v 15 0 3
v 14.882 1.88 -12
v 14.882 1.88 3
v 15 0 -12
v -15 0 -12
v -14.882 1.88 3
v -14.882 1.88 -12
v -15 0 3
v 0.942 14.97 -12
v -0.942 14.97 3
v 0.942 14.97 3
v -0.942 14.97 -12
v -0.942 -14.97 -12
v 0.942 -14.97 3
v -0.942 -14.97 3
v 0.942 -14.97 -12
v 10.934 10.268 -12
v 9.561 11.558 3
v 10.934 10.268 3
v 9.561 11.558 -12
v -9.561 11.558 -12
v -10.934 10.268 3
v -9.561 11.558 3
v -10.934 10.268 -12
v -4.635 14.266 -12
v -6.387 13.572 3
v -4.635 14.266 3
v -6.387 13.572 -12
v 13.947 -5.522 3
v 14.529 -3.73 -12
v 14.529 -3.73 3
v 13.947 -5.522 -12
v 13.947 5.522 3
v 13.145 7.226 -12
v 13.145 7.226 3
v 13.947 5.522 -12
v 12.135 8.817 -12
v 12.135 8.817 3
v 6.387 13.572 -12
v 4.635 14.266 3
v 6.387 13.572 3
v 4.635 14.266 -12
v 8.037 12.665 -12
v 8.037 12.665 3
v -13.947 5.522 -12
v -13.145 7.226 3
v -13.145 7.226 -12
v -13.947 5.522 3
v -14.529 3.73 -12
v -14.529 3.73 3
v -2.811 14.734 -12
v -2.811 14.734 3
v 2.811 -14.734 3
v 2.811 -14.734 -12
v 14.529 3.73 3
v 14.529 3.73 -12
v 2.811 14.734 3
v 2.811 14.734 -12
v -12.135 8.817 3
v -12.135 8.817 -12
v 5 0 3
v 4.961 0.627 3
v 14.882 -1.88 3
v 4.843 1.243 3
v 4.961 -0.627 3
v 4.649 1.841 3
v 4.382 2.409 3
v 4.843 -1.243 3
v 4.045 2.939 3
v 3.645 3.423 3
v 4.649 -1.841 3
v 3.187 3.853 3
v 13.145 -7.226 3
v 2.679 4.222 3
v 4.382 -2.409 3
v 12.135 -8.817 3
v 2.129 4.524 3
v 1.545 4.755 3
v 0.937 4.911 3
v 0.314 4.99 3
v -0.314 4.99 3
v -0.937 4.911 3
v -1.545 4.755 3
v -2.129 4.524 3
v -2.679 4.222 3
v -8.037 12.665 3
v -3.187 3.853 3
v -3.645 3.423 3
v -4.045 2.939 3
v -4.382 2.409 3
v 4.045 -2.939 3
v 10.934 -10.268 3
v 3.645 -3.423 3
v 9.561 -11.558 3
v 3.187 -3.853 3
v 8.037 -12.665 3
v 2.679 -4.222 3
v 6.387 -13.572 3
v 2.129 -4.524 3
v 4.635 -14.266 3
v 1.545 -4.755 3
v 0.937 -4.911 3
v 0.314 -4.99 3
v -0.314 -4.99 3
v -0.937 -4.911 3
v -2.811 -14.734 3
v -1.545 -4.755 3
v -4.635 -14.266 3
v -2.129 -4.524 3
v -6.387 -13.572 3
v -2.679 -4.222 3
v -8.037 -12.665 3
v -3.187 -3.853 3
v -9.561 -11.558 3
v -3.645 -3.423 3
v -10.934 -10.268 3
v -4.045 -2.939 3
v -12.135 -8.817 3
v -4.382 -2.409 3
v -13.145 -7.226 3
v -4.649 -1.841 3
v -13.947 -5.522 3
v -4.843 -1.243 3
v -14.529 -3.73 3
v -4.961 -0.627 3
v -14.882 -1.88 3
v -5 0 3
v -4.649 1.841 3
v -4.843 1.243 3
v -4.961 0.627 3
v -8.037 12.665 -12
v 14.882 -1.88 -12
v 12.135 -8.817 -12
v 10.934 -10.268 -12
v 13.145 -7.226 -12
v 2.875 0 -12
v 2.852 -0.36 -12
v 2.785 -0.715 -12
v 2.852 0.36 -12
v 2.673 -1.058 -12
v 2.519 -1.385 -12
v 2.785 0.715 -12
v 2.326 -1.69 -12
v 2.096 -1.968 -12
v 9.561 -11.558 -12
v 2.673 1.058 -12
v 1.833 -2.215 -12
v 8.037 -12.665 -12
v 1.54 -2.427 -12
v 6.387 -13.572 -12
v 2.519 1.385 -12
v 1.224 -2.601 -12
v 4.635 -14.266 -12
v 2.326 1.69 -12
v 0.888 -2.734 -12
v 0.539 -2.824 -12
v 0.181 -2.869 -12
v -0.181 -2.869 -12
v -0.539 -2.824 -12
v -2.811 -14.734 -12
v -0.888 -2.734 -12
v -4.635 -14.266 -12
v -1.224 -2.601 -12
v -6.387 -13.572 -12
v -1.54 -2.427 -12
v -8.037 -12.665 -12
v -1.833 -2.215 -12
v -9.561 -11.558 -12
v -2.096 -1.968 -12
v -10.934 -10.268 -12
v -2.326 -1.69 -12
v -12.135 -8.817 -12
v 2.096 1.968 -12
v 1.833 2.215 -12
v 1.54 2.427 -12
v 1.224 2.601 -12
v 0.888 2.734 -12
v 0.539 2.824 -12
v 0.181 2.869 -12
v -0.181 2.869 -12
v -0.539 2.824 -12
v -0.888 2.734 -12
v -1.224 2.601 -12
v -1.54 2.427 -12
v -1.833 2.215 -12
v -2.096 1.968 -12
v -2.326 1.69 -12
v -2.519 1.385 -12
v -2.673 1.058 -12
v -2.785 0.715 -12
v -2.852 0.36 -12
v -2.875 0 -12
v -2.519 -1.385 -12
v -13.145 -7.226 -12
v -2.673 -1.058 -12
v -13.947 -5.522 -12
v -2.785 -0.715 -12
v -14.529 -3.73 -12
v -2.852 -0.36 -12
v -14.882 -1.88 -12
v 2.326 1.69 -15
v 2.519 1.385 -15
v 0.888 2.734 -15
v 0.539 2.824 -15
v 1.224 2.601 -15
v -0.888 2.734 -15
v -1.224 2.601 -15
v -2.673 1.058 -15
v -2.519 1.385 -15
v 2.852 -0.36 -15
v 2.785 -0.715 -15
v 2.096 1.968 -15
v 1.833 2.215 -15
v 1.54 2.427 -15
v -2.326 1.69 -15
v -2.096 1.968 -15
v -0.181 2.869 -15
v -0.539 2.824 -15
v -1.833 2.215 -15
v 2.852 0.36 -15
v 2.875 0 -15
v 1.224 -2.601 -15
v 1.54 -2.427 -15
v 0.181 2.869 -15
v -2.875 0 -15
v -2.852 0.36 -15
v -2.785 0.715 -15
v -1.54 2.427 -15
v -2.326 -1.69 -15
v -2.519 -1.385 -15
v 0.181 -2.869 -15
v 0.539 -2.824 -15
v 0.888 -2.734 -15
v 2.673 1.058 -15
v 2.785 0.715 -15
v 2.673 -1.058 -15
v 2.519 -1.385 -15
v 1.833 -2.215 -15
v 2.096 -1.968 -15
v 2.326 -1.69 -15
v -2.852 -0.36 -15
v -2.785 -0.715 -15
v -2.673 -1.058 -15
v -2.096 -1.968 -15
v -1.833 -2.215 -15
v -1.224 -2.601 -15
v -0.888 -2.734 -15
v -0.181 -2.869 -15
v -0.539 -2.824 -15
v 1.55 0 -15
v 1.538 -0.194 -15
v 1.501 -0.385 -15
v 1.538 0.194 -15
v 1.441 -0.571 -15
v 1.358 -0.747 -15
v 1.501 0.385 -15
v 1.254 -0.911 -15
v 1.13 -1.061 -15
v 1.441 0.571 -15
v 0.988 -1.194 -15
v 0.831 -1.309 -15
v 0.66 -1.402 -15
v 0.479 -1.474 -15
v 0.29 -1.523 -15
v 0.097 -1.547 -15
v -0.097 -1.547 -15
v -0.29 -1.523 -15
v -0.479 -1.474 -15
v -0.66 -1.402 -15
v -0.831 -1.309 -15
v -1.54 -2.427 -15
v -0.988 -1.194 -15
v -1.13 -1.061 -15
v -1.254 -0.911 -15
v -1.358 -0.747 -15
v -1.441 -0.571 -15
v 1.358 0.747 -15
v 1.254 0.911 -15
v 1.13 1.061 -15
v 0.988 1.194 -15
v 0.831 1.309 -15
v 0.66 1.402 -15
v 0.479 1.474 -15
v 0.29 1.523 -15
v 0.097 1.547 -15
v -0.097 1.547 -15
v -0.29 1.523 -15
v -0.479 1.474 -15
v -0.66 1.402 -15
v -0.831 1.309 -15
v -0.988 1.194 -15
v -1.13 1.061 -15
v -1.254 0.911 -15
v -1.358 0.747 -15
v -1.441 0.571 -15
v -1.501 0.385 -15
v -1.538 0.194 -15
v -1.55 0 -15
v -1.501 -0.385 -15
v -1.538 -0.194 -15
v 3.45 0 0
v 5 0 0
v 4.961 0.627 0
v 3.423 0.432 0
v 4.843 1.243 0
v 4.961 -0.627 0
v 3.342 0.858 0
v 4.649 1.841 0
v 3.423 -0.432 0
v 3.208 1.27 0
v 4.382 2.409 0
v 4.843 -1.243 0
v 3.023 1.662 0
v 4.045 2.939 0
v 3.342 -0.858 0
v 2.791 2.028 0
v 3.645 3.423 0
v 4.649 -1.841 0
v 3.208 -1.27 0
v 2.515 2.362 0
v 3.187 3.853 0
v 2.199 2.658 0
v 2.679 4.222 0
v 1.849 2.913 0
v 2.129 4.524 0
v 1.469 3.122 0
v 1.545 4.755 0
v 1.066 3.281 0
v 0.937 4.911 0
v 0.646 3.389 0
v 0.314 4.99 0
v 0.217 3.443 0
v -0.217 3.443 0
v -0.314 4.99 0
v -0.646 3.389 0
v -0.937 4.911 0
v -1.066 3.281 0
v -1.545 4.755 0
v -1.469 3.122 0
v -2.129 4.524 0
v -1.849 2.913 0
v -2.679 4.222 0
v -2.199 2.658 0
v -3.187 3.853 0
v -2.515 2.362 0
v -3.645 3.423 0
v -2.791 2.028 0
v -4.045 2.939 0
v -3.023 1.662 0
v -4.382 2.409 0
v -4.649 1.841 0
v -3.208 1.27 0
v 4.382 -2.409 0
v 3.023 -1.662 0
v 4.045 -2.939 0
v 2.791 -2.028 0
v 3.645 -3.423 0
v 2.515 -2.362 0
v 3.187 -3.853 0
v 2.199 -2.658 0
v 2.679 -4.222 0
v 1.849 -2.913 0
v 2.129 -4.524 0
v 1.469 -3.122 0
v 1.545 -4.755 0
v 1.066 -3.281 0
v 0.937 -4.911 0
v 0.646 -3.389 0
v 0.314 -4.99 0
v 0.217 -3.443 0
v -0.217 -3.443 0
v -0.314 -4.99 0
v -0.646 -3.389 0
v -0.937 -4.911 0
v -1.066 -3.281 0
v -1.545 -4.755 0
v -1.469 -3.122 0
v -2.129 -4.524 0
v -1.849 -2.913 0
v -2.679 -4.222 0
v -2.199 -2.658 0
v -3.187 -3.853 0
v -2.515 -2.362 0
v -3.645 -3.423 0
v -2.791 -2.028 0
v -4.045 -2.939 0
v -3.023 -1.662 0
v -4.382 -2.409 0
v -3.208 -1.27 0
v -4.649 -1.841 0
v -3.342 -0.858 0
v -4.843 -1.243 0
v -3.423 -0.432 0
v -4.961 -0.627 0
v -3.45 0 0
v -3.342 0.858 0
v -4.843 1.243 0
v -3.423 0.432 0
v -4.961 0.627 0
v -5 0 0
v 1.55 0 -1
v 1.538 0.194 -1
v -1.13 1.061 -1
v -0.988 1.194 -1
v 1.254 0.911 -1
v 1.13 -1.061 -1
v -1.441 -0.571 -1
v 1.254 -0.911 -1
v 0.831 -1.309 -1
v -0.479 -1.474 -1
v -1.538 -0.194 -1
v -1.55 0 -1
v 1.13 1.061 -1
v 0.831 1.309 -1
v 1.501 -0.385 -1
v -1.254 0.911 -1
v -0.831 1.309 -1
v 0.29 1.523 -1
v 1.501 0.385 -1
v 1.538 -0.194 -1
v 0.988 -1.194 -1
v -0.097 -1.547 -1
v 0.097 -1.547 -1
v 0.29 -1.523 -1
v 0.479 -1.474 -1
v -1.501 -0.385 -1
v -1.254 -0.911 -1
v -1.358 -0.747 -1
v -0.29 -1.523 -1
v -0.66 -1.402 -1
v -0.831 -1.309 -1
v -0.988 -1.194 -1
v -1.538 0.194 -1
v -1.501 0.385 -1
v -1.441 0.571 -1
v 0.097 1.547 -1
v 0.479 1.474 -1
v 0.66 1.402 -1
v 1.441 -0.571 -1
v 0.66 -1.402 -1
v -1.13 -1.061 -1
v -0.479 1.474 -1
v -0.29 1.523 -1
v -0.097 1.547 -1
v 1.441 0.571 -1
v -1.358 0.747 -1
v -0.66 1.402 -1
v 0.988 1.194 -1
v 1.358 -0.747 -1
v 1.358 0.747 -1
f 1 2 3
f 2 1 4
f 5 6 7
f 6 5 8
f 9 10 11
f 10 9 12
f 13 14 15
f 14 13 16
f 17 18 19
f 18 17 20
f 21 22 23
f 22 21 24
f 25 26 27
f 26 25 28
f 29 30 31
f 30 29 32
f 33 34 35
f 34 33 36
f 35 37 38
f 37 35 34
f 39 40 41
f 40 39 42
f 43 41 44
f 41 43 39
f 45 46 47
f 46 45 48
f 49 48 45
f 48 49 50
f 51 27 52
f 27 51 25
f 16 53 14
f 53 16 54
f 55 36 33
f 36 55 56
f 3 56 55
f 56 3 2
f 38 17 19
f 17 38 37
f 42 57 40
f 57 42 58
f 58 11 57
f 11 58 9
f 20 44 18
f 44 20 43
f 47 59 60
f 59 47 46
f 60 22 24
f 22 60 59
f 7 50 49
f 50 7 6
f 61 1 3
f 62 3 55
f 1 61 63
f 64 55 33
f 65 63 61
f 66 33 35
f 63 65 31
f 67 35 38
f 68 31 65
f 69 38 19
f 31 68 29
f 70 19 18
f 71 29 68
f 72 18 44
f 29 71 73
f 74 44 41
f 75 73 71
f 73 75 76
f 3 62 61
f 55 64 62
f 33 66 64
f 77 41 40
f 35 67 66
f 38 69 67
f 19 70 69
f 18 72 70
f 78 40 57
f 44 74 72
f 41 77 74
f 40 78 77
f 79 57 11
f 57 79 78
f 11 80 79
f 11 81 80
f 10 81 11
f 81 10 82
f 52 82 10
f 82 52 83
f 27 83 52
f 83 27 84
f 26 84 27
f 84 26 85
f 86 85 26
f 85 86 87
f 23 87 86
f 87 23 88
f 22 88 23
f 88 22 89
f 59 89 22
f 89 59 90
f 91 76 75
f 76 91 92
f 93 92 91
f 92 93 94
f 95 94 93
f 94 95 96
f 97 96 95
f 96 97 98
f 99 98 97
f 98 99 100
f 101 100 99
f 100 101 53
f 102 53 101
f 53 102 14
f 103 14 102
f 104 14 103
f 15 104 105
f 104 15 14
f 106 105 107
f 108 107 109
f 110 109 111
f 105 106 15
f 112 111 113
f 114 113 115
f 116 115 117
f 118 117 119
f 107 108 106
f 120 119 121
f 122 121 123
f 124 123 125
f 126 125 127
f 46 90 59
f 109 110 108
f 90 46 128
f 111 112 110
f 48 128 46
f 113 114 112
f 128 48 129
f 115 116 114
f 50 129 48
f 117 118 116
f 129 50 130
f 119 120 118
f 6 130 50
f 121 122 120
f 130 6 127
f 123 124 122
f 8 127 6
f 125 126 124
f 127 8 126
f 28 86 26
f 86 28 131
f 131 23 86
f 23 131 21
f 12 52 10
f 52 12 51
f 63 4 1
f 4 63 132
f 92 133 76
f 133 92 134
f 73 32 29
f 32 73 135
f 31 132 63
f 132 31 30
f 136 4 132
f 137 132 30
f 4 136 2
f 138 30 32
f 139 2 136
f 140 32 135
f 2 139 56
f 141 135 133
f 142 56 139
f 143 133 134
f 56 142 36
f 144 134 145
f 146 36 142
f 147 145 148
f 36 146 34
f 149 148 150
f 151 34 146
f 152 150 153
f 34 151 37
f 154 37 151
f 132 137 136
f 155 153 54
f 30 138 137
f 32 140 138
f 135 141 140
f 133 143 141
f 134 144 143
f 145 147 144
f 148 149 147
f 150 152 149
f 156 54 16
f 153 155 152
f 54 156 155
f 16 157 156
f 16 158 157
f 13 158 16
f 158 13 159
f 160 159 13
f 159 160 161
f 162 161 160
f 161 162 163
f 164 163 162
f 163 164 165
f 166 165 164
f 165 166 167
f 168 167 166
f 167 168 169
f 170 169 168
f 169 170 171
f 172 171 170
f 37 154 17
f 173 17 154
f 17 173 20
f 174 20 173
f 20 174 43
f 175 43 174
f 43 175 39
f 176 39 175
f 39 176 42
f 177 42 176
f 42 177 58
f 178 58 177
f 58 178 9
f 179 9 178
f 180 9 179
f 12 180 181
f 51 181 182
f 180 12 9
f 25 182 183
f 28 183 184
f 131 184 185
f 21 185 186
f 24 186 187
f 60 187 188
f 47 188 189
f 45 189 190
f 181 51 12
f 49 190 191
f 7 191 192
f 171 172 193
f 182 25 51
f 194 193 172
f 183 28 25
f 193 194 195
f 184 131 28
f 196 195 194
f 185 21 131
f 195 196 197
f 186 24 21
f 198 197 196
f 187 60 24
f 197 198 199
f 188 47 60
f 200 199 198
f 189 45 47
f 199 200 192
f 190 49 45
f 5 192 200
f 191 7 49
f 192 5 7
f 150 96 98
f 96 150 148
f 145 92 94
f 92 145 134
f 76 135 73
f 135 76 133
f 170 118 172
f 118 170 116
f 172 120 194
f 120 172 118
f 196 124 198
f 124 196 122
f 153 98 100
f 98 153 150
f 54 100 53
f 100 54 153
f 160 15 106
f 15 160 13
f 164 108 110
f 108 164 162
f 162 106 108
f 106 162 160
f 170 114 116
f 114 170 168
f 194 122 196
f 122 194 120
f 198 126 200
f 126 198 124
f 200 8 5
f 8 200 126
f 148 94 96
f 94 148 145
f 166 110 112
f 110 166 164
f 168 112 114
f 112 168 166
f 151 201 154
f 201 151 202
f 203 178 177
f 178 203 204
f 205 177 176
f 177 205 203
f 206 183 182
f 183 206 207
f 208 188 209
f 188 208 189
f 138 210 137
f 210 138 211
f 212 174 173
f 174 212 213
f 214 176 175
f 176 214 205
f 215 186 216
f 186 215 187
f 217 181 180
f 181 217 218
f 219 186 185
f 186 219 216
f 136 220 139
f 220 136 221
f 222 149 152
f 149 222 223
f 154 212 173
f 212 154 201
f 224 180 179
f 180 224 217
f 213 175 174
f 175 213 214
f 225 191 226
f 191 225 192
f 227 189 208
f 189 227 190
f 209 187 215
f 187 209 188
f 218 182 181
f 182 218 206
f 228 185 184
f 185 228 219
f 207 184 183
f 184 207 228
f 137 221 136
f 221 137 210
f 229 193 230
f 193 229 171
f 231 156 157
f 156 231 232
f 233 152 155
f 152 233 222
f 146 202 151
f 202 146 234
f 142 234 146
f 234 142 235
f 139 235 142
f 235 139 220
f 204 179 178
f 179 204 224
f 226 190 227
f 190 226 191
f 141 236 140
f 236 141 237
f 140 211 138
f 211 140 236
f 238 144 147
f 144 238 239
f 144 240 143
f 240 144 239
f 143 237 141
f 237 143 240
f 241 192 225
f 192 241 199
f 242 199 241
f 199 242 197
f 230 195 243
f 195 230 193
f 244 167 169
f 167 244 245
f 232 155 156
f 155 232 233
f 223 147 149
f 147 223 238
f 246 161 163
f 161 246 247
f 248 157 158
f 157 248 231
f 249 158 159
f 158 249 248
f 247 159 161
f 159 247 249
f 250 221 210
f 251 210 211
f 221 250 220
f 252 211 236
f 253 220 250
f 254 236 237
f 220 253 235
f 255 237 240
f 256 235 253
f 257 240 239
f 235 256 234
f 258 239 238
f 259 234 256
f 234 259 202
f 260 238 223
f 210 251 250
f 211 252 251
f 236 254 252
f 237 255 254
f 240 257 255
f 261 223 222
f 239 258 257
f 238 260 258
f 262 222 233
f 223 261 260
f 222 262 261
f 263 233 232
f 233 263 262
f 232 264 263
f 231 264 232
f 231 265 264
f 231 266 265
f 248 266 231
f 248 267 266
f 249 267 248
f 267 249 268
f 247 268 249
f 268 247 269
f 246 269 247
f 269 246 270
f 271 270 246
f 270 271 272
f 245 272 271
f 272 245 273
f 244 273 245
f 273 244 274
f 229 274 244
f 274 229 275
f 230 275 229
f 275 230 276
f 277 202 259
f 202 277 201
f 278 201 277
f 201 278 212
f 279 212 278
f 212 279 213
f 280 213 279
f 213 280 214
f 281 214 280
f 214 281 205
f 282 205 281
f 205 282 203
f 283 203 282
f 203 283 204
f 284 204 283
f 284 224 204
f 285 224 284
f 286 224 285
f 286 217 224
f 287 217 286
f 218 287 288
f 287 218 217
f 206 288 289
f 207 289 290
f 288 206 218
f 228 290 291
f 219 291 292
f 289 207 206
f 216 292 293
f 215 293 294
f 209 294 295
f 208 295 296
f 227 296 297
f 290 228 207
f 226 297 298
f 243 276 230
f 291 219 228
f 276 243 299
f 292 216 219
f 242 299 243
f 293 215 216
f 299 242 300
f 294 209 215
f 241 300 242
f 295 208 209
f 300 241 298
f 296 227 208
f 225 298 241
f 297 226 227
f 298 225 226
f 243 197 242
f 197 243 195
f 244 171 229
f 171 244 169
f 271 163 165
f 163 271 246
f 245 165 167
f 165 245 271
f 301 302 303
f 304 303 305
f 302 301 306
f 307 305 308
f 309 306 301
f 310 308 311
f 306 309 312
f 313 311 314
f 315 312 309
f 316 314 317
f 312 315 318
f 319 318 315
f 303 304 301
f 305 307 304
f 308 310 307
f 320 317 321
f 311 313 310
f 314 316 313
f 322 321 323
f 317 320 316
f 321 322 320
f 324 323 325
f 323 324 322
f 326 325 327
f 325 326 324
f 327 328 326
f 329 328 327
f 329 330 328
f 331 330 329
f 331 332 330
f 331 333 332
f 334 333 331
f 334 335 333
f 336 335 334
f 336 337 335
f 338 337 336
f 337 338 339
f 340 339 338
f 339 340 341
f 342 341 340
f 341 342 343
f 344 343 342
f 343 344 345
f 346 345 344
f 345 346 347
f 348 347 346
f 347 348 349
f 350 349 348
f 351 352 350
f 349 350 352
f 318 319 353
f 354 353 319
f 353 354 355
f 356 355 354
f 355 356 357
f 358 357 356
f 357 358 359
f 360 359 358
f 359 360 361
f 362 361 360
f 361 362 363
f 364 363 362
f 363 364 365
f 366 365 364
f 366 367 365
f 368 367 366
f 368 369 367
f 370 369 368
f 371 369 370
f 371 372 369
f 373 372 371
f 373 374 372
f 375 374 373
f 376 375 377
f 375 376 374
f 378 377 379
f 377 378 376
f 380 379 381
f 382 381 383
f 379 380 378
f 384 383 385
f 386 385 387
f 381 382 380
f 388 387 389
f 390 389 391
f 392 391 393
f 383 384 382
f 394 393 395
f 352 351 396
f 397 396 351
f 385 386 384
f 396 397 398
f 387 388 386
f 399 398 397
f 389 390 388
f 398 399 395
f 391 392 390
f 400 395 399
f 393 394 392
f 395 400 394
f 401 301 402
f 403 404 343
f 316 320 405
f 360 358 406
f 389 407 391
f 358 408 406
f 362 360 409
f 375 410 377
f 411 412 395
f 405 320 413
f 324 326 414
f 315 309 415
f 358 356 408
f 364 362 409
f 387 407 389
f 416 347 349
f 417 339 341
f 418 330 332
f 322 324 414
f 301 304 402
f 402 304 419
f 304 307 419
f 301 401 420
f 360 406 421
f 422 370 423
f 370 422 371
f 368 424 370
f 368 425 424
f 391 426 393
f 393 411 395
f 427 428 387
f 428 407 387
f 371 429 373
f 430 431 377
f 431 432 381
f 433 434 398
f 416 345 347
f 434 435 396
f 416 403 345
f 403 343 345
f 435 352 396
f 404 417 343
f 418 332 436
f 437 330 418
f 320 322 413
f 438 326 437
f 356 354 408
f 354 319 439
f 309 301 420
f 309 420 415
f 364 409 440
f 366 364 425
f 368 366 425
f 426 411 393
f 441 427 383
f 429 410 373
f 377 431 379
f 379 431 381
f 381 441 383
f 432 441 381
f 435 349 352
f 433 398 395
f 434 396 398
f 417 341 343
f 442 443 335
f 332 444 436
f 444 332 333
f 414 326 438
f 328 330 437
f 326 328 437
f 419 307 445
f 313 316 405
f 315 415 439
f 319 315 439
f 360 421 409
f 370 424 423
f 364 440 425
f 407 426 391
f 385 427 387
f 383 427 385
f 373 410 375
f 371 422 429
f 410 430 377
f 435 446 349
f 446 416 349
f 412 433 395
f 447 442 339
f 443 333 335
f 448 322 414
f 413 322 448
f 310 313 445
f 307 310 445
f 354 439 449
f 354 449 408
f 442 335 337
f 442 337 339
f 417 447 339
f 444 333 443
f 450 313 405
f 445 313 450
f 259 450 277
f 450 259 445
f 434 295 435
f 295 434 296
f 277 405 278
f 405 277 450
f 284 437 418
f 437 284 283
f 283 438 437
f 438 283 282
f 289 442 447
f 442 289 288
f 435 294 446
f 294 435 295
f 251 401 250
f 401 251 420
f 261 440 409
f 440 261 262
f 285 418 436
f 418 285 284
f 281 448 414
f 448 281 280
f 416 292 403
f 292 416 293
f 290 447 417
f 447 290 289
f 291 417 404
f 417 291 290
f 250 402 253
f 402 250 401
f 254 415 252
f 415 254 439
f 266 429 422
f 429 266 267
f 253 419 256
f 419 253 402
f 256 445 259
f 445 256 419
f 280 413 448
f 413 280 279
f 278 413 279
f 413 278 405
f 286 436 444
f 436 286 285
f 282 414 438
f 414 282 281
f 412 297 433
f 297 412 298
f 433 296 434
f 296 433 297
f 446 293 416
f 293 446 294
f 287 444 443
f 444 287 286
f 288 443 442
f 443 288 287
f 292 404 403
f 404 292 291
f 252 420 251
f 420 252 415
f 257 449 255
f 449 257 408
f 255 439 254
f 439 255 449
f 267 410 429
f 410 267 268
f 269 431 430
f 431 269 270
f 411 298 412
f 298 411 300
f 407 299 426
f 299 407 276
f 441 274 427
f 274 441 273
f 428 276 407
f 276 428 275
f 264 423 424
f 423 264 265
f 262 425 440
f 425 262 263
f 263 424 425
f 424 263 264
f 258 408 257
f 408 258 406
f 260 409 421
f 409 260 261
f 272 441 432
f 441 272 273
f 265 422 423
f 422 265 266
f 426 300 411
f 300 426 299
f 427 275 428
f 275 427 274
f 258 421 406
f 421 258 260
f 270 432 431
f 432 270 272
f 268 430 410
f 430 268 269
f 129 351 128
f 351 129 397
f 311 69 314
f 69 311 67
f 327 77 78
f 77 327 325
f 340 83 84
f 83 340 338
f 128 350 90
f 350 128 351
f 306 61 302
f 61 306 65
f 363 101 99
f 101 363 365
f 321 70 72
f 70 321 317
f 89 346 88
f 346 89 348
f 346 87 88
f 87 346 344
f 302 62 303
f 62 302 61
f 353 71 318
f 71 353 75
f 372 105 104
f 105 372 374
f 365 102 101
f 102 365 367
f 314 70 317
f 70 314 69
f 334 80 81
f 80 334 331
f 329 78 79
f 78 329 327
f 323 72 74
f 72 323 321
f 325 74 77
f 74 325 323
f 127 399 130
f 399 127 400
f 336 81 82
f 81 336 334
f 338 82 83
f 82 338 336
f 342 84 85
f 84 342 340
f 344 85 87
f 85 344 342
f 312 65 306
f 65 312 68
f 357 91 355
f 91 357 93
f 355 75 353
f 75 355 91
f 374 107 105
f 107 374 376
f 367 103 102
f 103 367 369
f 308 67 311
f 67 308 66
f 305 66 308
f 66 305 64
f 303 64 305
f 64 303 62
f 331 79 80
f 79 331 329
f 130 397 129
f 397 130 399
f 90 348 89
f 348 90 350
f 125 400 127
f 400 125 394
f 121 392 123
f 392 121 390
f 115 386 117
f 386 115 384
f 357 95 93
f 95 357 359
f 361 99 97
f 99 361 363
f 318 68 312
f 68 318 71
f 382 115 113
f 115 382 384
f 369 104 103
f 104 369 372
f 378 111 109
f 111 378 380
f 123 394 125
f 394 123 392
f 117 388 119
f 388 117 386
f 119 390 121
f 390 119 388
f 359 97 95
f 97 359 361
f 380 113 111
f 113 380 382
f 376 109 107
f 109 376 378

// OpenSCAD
$fn = 50;


difference() {
	union() {
		translate(v = [0, 0, -12.0000000000]) {
			cylinder(h = 15, r = 15.0000000000);
		}
		#translate(v = [0, 0, -15.0000000000]) {
			cylinder(h = 15, r = 2.8750000000);
		}
	}
	union() {
		translate(v = [0, 0, 0]) {
			rotate(a = [0, 0, 0]) {
				difference() {
					union() {
						translate(v = [0, 0, -15.0000000000]) {
							cylinder(h = 15, r = 1.2500000000);
						}
						translate(v = [0, 0, -1.0000000000]) {
							cylinder(h = 1.0000000000, r1 = 1.5500000000, r2 = 3.4500000000);
						}
						translate(v = [0, 0, -15.0000000000]) {
							cylinder(h = 15, r = 1.5500000000);
						}
						translate(v = [0, 0, -15.0000000000]) {
							cylinder(h = 15, r = 1.2500000000);
						}
					}
					union();
				}
			}
		}
		#cylinder(h = 3, r = 5.0000000000);
	}
}
